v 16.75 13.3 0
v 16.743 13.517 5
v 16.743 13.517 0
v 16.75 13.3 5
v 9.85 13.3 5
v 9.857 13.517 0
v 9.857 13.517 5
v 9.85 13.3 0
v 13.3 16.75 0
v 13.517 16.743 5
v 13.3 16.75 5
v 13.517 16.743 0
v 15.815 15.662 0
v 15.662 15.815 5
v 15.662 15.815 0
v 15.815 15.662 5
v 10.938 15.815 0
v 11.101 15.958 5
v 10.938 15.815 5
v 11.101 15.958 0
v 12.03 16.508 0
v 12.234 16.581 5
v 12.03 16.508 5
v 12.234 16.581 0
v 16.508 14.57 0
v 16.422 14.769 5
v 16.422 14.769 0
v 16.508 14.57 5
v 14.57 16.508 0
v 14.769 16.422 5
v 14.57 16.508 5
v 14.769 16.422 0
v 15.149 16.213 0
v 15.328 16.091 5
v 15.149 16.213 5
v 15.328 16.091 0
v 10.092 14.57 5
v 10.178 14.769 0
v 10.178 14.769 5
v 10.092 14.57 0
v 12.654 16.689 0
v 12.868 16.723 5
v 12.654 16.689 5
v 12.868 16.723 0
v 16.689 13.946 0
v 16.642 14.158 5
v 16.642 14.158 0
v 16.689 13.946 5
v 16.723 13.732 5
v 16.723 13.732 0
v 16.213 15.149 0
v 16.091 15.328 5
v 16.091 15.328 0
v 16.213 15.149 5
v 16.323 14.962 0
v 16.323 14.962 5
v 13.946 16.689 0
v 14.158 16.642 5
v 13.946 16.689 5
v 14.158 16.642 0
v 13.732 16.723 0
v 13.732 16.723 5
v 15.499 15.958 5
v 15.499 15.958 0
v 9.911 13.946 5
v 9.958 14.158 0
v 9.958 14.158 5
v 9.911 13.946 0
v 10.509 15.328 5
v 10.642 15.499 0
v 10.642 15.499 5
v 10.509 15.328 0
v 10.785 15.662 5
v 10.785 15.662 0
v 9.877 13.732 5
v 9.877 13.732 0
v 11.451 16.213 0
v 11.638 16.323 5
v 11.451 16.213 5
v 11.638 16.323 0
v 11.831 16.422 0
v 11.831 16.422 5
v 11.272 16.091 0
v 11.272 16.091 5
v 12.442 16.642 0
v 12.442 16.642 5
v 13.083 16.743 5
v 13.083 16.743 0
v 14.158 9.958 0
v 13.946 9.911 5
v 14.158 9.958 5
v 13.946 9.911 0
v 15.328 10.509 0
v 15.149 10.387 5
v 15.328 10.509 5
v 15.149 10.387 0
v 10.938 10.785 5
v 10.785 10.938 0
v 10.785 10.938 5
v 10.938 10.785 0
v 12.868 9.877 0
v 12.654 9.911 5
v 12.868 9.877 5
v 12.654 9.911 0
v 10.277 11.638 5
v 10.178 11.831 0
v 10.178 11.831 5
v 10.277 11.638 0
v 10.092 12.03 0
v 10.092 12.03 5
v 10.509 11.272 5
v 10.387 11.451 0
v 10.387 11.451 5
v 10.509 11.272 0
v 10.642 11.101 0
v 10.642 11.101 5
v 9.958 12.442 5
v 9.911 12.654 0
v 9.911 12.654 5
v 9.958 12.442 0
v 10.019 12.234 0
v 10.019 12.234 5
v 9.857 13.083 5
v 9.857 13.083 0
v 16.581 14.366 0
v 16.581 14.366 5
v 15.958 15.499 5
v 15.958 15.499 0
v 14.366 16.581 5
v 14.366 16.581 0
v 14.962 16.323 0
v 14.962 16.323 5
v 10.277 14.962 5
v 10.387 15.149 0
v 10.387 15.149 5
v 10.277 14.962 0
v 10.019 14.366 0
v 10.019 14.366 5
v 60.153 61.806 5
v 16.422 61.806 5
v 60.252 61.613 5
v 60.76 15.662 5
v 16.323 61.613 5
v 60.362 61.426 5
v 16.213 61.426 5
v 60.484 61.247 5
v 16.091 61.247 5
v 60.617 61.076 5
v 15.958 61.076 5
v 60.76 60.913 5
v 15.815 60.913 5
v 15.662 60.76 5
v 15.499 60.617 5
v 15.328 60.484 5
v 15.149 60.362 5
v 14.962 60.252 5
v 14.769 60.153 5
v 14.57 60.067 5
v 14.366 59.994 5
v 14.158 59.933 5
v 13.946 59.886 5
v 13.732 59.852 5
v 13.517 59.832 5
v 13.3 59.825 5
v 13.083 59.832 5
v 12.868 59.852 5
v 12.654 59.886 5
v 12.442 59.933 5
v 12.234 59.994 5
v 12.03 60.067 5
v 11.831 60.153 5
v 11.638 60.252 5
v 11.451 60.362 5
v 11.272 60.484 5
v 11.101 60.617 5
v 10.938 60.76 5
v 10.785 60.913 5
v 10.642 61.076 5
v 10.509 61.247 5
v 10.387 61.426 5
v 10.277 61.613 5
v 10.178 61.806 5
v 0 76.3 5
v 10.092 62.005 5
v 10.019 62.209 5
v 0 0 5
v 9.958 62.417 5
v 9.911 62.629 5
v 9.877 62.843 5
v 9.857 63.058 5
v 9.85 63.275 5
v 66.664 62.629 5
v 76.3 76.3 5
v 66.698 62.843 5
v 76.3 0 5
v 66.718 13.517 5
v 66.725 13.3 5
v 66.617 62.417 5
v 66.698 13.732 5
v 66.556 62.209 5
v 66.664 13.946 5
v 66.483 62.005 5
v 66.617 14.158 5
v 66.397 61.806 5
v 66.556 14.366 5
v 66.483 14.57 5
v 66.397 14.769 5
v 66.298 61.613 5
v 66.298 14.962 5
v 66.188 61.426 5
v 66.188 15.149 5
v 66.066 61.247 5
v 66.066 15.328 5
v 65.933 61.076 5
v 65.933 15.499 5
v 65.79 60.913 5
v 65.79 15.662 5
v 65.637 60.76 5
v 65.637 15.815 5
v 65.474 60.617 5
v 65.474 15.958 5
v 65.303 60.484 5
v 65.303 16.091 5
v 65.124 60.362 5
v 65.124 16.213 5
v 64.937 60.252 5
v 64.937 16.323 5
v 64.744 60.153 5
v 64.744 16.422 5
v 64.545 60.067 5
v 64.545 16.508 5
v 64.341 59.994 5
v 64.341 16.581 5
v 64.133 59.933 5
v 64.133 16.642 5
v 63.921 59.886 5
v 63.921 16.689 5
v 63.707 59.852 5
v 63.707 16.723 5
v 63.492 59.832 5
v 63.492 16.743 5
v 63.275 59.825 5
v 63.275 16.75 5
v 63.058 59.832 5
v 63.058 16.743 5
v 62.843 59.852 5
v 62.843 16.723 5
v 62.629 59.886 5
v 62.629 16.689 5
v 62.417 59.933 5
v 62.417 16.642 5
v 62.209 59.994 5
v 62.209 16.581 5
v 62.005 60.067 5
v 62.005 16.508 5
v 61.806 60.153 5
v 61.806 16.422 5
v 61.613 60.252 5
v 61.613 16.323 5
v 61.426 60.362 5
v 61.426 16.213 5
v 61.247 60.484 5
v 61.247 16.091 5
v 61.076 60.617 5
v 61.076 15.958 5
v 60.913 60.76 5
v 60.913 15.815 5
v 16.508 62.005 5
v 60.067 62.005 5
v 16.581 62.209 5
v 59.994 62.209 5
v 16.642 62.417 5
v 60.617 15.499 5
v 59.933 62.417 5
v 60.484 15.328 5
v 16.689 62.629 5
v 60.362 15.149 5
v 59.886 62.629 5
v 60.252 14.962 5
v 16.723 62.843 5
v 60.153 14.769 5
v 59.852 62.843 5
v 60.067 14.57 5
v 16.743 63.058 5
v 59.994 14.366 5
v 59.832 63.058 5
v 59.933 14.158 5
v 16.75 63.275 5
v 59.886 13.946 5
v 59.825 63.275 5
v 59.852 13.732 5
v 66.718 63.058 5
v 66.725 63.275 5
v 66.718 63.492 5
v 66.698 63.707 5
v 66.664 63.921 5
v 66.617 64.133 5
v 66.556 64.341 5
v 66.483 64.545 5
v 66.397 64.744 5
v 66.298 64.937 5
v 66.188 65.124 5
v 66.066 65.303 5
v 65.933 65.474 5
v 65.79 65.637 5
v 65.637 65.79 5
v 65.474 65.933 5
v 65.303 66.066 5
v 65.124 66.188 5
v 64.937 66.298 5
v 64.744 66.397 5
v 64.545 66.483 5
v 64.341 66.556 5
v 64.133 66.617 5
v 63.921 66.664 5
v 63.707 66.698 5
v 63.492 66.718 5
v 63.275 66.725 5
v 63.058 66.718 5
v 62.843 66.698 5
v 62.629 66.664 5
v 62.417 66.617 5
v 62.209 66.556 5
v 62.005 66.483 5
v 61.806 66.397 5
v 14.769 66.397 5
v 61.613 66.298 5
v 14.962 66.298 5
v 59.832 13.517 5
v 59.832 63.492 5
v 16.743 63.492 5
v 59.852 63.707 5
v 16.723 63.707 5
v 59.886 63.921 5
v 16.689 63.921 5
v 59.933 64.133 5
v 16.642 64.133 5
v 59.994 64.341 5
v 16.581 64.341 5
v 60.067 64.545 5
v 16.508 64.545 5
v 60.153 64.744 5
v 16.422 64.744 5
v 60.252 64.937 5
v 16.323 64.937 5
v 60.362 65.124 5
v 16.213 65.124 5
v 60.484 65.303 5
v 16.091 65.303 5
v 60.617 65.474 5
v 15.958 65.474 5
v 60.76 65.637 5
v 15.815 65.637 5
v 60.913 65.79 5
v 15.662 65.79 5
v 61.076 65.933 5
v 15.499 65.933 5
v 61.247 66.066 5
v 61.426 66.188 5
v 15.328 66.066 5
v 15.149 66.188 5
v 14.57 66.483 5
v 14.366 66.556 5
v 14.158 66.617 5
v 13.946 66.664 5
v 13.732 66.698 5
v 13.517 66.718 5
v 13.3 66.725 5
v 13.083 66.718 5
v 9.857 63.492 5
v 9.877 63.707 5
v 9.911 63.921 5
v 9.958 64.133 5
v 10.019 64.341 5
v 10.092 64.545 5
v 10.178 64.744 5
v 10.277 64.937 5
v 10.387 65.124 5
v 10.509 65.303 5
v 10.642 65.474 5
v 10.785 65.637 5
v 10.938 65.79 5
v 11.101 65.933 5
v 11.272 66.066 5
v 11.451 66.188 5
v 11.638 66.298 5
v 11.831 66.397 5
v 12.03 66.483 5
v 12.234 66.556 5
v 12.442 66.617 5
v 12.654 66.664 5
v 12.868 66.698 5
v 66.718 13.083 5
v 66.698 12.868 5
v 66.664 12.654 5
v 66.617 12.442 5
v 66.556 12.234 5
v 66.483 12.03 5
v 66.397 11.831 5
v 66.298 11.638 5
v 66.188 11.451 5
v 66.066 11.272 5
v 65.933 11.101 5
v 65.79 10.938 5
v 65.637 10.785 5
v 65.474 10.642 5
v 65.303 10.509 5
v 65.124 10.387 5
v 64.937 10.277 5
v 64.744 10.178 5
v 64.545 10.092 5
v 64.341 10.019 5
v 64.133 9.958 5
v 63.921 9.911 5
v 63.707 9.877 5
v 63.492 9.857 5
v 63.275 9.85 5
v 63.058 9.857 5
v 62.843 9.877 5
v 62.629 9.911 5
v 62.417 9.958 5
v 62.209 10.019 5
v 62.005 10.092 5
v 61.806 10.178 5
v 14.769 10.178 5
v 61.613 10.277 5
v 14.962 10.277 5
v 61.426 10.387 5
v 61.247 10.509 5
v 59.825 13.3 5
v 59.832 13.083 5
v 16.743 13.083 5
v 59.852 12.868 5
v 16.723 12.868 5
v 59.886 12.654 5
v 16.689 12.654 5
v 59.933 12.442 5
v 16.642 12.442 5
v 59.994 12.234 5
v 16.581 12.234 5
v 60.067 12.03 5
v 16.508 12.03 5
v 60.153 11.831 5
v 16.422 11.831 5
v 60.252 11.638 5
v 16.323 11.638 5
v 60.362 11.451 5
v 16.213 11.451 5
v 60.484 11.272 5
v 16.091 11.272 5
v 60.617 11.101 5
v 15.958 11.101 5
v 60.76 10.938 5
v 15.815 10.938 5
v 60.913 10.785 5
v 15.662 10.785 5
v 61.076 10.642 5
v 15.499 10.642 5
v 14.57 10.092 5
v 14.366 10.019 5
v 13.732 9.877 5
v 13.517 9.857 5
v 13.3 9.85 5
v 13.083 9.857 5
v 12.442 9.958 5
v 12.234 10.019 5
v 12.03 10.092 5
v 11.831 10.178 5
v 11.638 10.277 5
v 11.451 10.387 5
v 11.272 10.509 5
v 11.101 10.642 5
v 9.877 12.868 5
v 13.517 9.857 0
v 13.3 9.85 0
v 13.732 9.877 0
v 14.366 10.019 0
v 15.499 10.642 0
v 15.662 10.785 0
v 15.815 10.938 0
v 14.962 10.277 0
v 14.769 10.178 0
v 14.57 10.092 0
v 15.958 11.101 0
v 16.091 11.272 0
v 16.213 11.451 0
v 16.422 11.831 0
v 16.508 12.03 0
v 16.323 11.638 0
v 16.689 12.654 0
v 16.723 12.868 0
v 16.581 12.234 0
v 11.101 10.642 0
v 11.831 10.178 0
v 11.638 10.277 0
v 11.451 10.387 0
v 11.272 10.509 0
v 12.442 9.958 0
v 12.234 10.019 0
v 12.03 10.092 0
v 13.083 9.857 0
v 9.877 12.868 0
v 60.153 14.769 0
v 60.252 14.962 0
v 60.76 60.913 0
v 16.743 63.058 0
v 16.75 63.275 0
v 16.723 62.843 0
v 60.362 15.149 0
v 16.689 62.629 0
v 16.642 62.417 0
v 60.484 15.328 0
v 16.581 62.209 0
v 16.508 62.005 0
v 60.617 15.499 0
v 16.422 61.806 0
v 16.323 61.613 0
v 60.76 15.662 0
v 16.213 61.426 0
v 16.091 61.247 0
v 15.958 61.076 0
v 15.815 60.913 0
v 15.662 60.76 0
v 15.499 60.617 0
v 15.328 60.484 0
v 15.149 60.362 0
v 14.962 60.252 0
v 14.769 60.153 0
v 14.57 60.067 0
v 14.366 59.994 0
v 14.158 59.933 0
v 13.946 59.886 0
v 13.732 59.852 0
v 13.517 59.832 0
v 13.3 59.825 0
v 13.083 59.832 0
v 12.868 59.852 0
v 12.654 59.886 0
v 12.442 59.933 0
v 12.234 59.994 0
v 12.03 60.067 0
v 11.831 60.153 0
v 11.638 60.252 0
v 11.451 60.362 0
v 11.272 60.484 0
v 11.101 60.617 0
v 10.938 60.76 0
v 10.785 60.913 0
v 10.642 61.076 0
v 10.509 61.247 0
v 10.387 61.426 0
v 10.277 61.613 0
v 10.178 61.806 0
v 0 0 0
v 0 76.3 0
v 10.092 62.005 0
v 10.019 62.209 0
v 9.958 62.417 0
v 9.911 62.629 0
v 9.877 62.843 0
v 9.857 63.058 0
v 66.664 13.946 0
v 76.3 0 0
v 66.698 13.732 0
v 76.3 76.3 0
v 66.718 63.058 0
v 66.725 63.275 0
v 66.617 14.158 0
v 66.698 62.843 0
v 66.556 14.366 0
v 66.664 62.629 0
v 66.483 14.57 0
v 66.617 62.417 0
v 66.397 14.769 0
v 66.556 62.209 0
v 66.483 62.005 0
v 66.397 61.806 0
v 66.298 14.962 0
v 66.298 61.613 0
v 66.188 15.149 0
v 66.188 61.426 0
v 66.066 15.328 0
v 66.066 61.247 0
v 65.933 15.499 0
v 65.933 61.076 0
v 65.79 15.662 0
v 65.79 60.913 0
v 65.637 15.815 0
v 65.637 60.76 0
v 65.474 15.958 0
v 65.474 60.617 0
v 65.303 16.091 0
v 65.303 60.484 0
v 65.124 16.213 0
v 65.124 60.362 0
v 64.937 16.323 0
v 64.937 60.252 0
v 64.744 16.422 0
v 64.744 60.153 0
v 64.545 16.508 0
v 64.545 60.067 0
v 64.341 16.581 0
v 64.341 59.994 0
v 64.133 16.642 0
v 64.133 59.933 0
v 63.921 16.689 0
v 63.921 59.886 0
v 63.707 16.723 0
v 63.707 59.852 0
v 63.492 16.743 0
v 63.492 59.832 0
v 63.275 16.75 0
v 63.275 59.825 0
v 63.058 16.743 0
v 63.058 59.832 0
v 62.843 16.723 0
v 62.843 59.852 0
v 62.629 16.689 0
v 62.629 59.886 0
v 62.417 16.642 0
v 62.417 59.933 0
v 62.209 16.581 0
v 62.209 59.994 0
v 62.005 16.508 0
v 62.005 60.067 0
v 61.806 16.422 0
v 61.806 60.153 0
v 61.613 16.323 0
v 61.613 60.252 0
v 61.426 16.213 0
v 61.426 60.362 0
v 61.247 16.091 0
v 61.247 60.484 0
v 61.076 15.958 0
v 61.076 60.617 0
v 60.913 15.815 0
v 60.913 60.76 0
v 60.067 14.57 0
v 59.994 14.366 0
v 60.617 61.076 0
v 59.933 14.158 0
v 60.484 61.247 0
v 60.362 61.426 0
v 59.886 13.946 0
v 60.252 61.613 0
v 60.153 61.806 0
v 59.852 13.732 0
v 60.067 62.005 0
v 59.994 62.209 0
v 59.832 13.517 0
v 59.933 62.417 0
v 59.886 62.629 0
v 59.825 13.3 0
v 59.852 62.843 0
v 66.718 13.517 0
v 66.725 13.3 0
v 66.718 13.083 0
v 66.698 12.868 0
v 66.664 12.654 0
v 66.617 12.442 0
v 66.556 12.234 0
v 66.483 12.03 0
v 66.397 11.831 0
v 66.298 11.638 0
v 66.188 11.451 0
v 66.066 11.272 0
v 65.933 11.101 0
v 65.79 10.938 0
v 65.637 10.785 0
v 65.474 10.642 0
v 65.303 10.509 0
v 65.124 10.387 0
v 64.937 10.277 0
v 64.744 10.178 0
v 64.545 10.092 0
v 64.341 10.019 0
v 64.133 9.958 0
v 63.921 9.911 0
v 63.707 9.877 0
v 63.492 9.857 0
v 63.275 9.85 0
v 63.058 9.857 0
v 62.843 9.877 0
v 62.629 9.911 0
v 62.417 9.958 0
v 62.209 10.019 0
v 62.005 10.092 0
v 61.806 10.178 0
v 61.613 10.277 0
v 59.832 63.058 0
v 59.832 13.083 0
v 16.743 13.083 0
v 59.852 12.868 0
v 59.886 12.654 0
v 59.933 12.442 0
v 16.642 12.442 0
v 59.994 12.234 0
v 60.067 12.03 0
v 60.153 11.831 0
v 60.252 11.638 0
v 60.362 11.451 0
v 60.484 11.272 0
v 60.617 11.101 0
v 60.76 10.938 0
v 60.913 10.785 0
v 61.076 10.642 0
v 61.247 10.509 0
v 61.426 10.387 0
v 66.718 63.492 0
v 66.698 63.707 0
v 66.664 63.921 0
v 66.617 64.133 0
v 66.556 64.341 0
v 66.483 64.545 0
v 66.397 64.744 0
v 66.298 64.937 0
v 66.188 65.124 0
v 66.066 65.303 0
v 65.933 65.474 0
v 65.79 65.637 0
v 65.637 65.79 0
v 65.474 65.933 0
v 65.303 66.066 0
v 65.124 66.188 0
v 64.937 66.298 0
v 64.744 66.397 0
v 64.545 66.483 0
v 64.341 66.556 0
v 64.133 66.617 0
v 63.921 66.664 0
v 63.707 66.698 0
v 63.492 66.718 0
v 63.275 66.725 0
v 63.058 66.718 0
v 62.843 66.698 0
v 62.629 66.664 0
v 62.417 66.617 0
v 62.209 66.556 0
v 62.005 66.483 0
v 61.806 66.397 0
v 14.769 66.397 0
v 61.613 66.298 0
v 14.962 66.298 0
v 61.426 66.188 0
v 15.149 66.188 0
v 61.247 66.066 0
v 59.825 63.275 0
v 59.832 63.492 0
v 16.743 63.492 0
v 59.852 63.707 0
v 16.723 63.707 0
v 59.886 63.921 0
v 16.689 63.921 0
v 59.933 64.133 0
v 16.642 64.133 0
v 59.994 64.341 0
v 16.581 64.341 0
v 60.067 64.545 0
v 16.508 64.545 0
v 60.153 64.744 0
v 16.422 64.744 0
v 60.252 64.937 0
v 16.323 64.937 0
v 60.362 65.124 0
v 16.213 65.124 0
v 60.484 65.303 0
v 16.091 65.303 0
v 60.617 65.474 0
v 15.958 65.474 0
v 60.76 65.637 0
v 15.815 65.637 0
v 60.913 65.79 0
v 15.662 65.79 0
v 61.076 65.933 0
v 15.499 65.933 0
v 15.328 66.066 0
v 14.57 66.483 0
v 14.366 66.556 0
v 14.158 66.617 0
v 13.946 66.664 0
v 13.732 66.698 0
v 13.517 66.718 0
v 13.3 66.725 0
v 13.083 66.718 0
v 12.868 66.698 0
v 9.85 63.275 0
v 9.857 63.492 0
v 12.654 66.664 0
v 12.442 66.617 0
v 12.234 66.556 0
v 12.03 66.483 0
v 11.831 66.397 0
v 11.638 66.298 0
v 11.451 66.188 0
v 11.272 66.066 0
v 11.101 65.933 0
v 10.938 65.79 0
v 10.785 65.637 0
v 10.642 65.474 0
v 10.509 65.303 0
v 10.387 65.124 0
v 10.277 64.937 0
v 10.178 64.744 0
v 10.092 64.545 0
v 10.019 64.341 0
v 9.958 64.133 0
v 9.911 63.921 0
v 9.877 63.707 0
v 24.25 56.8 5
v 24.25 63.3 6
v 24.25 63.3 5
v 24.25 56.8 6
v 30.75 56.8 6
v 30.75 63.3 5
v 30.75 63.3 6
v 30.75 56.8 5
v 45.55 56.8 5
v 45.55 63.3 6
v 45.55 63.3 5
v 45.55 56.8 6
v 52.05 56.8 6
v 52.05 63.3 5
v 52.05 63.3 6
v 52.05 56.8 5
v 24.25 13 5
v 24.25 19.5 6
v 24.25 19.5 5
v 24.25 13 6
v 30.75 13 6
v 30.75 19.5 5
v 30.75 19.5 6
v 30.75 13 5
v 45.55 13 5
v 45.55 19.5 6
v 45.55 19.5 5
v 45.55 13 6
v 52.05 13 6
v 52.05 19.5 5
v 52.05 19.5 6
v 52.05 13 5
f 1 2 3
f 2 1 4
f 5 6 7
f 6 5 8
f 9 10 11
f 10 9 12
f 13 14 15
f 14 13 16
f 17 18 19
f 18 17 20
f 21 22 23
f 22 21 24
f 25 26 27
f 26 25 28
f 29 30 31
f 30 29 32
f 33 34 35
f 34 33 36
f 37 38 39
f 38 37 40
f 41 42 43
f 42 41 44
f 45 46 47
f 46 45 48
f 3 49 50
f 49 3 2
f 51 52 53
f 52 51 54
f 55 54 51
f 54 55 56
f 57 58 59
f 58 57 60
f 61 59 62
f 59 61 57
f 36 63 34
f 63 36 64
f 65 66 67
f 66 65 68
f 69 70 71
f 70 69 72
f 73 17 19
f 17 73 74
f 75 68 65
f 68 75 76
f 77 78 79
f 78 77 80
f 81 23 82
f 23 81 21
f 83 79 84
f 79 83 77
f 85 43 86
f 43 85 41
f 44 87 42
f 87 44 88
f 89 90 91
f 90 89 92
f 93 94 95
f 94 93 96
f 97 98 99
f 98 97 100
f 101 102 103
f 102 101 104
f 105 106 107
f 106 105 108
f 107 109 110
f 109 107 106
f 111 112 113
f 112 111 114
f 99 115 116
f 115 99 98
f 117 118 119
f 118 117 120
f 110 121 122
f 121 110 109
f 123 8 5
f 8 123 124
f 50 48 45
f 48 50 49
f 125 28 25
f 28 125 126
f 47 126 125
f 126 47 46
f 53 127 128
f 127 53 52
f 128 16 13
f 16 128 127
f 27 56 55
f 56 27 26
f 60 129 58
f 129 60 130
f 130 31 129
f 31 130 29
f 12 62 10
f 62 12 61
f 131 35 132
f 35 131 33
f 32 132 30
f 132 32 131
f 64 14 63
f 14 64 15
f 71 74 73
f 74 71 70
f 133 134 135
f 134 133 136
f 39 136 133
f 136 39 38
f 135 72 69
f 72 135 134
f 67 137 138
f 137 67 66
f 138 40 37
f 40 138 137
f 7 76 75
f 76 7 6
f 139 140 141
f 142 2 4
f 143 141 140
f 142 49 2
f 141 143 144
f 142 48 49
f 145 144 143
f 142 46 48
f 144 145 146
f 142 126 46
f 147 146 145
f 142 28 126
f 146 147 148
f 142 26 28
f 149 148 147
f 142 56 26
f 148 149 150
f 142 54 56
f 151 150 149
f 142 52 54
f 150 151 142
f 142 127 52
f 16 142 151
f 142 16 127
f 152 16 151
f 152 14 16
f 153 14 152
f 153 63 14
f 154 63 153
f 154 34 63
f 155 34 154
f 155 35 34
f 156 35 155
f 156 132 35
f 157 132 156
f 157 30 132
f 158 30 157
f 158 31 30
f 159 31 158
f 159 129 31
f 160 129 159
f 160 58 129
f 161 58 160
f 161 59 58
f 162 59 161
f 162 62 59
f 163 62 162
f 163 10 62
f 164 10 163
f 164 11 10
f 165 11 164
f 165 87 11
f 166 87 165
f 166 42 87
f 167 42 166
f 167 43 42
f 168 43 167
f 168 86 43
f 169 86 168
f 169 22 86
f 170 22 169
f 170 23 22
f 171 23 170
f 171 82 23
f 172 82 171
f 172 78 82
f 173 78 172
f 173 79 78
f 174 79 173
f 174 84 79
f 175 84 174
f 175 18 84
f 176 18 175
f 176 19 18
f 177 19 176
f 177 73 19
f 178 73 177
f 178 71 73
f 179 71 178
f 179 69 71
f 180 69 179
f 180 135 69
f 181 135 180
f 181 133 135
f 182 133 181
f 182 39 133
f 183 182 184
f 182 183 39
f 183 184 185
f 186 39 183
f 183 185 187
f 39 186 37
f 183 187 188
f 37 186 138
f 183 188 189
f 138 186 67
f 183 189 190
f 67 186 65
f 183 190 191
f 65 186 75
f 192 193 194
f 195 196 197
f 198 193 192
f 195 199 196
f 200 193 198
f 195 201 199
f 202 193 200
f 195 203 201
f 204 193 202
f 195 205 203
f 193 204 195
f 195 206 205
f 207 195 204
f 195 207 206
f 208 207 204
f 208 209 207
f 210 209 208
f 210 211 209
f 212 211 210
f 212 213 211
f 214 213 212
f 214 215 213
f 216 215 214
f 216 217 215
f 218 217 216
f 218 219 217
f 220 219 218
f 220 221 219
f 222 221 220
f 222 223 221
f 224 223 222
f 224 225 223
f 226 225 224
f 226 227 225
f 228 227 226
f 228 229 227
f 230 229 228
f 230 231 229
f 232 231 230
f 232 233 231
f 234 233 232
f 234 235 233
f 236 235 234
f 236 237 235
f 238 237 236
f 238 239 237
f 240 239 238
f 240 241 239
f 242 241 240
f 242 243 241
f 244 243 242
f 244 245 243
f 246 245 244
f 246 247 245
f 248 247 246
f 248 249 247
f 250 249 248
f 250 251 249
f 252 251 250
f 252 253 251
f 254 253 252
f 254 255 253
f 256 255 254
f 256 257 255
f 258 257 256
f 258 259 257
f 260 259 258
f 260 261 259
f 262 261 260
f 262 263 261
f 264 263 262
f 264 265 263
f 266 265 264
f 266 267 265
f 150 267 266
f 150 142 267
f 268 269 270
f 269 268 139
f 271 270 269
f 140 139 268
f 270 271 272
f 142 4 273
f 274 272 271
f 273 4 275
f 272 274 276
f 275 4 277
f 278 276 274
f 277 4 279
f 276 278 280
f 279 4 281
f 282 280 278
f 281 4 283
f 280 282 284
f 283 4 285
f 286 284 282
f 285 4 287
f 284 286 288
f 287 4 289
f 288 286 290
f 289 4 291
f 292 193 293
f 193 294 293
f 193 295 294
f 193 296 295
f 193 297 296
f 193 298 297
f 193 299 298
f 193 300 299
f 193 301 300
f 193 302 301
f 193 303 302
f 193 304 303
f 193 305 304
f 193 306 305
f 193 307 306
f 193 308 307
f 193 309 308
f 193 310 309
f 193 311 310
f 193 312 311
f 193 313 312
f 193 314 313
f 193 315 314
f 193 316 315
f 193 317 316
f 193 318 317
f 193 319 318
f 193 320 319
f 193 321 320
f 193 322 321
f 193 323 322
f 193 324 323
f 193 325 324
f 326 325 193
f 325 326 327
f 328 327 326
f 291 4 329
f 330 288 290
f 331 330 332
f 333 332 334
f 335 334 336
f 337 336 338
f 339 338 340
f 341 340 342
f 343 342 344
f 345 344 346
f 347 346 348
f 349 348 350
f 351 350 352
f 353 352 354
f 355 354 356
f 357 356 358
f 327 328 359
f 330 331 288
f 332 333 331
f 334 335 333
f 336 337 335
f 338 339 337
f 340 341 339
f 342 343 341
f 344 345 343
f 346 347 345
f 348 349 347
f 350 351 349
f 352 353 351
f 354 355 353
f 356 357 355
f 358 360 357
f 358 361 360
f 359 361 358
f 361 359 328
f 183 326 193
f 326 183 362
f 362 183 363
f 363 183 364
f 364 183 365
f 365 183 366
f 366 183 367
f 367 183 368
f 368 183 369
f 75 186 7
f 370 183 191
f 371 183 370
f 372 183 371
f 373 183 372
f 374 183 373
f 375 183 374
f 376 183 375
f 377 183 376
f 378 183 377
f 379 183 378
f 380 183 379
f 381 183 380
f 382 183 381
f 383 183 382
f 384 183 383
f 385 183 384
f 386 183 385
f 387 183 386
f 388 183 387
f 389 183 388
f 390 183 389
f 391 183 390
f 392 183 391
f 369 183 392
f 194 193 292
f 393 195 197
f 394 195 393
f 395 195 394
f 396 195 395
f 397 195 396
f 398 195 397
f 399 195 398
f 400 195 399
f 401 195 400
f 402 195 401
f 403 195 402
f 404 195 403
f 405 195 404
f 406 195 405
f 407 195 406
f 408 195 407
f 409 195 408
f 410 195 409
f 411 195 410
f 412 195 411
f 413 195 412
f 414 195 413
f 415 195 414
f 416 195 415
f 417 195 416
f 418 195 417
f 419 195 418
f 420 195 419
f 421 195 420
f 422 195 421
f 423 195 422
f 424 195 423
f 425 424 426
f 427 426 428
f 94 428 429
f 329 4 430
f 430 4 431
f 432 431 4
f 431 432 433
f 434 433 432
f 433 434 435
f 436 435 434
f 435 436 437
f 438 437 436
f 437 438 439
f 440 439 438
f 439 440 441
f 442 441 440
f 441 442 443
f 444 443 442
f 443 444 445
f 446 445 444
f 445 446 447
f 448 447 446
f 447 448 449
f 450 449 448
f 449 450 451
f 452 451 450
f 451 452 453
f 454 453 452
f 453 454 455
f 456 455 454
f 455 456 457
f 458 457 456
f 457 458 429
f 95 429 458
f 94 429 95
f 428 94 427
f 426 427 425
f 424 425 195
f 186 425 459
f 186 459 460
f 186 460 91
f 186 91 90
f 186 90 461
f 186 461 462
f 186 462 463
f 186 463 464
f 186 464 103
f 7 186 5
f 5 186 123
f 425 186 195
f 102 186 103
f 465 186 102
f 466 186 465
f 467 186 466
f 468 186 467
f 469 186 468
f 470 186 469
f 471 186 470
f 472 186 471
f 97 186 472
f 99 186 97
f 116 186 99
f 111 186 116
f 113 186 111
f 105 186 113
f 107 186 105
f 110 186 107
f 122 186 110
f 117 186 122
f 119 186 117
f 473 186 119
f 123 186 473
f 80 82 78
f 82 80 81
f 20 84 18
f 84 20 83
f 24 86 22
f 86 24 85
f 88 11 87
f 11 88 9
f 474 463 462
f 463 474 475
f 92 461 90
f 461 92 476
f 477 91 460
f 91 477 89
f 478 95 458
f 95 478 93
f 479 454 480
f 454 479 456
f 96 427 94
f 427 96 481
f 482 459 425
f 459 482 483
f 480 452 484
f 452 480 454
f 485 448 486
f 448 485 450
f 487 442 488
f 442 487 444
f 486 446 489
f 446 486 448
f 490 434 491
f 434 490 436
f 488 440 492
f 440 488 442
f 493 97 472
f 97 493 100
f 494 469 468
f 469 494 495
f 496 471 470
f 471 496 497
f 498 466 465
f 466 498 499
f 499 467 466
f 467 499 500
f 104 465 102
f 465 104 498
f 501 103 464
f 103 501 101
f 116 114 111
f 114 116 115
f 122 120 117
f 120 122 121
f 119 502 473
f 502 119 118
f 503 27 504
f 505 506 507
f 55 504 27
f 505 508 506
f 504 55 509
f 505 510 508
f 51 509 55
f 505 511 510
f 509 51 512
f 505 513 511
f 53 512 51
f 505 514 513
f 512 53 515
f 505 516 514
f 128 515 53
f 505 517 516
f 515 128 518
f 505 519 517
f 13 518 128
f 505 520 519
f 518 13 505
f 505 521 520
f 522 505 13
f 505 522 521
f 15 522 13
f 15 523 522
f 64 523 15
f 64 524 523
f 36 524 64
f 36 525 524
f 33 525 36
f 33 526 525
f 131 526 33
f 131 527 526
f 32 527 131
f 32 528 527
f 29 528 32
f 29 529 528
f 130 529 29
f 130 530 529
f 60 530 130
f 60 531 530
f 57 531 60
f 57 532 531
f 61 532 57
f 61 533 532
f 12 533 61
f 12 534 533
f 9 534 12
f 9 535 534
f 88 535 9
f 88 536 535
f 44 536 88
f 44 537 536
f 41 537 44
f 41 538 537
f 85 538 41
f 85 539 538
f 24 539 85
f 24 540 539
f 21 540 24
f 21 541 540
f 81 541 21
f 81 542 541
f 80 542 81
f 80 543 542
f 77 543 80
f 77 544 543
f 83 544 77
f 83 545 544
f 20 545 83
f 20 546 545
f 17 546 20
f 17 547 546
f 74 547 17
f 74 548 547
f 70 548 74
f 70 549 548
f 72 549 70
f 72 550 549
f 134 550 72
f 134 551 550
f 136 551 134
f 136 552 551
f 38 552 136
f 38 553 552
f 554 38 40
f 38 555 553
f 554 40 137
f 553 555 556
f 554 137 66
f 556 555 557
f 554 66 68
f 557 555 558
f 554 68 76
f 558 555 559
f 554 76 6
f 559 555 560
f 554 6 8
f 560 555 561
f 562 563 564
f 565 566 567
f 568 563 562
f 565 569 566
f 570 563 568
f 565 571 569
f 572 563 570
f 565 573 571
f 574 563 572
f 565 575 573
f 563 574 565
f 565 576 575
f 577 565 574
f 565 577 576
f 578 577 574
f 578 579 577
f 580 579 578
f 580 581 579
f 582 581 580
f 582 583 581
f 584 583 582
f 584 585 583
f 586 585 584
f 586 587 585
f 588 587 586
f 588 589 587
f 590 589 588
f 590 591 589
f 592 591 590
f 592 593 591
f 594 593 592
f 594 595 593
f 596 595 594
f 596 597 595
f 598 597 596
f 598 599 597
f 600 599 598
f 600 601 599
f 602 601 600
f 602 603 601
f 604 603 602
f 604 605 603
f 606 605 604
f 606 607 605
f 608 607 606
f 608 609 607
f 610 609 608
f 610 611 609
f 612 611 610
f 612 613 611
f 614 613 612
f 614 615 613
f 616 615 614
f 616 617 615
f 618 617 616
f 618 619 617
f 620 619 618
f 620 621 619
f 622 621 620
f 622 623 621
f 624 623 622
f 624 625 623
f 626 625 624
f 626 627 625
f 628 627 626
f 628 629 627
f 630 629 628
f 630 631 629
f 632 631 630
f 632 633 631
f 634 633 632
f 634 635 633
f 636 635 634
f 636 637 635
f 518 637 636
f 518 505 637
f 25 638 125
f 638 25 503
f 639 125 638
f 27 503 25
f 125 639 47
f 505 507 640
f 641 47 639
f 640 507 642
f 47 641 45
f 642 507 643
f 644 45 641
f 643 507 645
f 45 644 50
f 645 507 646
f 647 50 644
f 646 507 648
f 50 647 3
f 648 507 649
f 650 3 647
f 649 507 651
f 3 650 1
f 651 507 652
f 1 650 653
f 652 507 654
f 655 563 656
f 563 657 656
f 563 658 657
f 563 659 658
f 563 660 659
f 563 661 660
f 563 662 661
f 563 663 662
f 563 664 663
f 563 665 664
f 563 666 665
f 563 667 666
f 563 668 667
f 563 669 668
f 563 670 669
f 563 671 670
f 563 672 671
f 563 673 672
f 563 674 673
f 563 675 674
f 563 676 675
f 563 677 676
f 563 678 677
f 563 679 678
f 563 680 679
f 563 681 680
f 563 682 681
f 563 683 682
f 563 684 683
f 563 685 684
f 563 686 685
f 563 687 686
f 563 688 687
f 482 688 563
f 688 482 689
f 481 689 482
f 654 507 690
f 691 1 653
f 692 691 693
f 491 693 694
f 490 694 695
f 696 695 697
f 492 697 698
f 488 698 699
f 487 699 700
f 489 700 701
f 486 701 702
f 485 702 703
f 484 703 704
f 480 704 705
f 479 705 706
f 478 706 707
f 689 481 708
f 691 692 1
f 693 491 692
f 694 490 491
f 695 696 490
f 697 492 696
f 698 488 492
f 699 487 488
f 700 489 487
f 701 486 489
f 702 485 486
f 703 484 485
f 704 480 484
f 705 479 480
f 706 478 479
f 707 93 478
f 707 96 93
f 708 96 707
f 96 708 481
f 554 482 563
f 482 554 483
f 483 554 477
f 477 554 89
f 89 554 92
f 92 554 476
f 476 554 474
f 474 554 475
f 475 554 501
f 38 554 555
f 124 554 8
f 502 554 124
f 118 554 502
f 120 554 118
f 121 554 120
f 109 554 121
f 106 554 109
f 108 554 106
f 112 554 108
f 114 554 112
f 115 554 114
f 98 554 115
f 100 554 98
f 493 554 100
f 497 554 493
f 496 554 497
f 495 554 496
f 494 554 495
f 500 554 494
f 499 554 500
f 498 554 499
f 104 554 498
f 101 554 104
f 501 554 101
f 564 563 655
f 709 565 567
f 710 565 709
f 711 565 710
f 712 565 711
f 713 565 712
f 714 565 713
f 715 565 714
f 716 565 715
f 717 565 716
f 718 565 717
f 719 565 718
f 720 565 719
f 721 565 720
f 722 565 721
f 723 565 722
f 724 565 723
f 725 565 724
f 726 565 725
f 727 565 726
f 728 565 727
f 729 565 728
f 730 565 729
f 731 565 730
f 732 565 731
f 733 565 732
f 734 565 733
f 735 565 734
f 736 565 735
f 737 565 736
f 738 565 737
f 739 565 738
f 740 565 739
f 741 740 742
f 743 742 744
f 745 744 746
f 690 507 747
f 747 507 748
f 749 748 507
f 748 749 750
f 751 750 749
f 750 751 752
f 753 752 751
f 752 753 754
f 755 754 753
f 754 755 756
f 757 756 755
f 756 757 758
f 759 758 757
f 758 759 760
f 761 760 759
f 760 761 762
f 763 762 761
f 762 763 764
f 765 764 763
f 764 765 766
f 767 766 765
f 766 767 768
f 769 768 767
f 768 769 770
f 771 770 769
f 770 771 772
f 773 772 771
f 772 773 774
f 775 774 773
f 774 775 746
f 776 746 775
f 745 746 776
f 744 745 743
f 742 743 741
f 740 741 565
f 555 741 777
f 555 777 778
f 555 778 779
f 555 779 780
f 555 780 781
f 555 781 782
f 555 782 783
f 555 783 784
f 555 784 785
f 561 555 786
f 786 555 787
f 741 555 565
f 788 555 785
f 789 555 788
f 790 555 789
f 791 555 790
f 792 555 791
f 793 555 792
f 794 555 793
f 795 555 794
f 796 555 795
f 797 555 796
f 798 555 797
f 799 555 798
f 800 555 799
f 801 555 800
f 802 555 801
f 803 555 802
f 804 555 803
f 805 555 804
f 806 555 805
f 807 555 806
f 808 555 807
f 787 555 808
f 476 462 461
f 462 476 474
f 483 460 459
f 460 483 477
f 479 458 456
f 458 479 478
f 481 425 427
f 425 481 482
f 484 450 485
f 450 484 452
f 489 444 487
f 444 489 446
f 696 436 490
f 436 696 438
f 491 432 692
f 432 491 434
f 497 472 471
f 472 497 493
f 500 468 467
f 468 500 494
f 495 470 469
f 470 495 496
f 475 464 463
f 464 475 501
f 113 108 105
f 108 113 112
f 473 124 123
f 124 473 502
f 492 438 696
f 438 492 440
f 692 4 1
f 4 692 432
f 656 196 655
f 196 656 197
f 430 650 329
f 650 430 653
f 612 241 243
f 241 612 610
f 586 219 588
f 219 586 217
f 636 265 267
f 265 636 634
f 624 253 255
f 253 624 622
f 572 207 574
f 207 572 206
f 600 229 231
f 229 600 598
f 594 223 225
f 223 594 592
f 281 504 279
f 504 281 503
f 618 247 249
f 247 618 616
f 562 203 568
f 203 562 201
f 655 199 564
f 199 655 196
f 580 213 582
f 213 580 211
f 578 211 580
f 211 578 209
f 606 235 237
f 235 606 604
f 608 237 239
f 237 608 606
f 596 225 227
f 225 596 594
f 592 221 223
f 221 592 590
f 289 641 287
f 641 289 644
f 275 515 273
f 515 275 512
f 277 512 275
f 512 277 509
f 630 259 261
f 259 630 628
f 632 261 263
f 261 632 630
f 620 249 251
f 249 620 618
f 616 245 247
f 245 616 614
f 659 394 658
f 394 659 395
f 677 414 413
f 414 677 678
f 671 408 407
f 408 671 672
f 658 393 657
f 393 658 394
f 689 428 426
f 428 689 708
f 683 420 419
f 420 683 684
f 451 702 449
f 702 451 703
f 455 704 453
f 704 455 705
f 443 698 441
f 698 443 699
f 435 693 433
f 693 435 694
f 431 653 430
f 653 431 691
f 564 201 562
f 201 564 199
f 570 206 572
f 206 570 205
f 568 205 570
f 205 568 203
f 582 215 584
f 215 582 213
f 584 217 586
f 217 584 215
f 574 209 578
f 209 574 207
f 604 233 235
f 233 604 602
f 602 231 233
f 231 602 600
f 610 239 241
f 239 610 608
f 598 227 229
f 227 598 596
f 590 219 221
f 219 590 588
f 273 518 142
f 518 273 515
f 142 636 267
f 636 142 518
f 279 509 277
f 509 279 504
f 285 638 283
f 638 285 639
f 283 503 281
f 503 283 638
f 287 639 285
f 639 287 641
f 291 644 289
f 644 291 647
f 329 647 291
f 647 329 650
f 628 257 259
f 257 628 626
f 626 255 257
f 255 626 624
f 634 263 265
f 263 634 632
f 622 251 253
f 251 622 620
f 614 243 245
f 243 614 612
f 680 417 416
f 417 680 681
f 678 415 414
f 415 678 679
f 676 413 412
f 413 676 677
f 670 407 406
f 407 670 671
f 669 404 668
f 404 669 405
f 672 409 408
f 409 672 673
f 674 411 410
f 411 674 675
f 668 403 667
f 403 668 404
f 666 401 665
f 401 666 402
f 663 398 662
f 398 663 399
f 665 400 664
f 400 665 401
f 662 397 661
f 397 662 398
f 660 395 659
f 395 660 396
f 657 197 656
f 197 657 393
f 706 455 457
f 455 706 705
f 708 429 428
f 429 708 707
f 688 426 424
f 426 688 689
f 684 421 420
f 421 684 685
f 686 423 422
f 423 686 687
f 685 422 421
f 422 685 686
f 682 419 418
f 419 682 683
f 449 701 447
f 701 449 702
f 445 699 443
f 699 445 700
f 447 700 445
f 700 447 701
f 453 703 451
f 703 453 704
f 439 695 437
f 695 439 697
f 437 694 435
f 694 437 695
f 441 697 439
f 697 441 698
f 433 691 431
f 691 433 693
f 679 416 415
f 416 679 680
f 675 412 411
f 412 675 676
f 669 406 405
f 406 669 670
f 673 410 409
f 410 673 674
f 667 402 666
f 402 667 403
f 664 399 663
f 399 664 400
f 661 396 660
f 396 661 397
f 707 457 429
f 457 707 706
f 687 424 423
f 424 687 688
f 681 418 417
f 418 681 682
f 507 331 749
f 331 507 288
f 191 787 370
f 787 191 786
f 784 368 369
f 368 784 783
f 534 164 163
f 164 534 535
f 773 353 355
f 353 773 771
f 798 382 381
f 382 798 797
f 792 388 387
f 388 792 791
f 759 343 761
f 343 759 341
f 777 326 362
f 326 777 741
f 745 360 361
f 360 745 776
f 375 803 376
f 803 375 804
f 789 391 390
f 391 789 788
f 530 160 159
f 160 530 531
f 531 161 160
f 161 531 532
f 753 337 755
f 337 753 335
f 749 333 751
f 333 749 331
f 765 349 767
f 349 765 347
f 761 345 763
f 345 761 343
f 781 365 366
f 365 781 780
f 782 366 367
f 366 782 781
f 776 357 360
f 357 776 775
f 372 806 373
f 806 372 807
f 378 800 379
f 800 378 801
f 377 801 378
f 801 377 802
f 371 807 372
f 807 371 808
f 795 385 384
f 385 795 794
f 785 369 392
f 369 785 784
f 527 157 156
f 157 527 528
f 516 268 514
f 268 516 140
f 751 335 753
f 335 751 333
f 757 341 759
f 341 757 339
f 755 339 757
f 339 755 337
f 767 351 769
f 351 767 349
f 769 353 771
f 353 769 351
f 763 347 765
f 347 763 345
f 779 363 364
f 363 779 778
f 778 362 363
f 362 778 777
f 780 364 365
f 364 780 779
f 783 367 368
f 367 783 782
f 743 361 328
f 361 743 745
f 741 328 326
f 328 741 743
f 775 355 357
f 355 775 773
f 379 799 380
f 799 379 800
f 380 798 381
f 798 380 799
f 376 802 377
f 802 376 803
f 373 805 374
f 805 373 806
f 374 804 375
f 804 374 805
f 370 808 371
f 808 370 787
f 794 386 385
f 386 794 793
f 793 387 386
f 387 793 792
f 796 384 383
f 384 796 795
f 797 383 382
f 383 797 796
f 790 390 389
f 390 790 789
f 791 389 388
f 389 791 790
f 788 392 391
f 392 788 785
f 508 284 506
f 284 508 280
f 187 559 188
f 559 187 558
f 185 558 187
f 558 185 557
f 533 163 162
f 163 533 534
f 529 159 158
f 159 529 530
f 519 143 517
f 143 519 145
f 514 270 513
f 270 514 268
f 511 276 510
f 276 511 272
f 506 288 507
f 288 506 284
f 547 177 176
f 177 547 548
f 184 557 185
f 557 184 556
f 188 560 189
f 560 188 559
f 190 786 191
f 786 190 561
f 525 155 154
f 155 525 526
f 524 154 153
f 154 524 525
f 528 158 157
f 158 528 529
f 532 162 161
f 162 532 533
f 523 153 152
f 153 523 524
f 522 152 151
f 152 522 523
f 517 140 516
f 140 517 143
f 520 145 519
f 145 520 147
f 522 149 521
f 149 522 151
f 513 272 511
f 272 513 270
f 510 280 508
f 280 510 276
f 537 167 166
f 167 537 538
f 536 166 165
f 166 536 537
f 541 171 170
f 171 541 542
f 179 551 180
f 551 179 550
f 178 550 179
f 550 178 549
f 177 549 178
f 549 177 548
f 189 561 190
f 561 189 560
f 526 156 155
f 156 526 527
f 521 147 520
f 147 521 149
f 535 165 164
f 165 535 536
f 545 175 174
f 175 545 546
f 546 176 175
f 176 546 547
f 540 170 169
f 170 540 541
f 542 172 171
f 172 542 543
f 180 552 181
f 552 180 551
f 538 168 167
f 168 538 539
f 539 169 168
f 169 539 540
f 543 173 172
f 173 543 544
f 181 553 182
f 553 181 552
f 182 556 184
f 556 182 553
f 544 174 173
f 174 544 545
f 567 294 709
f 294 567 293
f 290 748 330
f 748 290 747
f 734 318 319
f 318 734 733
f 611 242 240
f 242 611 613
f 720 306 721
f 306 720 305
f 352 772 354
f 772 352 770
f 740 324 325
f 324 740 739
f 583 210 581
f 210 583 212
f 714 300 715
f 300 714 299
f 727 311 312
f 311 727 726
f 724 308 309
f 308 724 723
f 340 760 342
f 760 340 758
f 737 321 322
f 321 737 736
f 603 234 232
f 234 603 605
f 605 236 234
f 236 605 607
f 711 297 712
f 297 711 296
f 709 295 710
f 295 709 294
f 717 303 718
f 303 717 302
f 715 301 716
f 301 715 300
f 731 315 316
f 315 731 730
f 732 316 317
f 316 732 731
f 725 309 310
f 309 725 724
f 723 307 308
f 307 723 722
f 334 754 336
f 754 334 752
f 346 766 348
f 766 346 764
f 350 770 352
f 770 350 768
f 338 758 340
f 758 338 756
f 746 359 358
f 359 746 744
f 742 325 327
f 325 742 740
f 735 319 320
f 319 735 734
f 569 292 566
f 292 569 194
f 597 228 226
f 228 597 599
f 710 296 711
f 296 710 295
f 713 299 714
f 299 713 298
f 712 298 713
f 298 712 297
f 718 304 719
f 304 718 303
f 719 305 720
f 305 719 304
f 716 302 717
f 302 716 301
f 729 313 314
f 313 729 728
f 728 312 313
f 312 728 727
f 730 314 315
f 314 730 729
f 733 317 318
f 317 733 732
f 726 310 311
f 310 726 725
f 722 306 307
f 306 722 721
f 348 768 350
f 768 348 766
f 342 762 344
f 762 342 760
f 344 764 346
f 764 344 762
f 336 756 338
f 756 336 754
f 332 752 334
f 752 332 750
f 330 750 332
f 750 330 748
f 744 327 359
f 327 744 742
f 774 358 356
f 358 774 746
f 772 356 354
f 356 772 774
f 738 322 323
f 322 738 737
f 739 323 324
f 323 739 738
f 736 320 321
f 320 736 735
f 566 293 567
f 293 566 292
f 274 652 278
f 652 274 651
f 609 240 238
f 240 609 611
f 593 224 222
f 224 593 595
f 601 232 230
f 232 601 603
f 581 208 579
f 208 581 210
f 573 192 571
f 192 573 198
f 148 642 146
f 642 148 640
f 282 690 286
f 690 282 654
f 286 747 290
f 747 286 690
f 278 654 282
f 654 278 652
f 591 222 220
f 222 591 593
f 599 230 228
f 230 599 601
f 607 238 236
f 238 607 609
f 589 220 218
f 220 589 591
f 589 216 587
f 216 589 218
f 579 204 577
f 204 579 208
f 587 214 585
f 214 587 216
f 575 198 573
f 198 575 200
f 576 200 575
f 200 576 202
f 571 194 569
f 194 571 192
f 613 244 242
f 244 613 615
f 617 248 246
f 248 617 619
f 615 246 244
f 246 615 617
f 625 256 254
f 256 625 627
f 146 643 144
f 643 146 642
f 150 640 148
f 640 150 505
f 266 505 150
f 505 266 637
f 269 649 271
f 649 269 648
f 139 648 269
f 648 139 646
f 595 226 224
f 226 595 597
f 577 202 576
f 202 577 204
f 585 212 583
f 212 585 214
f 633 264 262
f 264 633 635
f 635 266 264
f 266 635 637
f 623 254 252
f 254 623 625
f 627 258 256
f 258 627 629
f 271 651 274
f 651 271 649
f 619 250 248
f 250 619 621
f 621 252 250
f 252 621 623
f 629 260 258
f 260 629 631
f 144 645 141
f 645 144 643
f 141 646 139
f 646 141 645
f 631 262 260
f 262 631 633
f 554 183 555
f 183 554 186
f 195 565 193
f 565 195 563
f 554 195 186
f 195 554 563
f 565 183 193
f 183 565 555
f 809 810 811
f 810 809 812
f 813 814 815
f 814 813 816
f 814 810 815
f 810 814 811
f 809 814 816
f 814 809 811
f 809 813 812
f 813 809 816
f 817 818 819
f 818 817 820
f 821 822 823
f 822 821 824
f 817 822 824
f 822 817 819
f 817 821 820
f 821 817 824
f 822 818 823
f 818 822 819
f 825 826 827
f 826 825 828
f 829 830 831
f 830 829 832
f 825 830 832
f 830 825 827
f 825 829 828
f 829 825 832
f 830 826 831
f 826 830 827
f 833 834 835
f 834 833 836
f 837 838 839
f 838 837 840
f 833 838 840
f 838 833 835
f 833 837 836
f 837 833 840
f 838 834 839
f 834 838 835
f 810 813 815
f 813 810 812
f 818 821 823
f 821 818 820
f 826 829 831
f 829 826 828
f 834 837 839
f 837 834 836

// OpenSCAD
// file: module_Cubo.scad
module Cubo(){
    difference(){
        cube([50,50,50]);
        #translate([2.5,2.5,2.5])cube(45);
        #translate([25,25,0])cylinder(h=2.5,r1=15,r2=15);
        #translate([25,25,47.5])cylinder(h=2.5,r1=15,r2=15);
        rotate([90,0,0])translate([25,25,-2.5])cylinder(h=2.5,r1=15,r2=15);
        rotate([90,0,0])translate([25,25,-50])cylinder(h=2.5,r1=15,r2=15);
        rotate([0,90,0])translate([-25,25,])cylinder(h=2.5,r1=15,r2=15);
        rotate([0,90,0])translate([-25,25,47.5])cylinder(h=2.5,r1=15,r2=15);
    }
}
// main file
// ----- ----- Declaração de Variáveis ----- ----- //

res=100;

folga1=0.15;
folga2=0.05;

cubo=50;

ds_splh=(44+40)/2;
d_splh=ds_splh/12; //3.5

diff_splh_x=17;
diff_splh_y=10;
diff_splh_z=19.25;

raio_bobina=12.5;

xeuss_x=76.3;
xeuss_y=76.3;
xeuss_z=5;

xt=14;
yt=89.8-xeuss_y;
zt=xeuss_z;

rx=6.6/2;
tr_x=13.65;
tr_cil=10+rx;
cc = (56.5+43.45)/2;

Xdelize=xeuss_x;
Ydelize=25;
Zdelize=11.7-xeuss_z;

alt_poly=15-Zdelize-xeuss_z;
esp_poly=2.5;
apt_poly=7.4;
poly5=5;

x_encaixe=xeuss_x-2*poly5;
y_encaixe=20;
z_encaixe=3;

splh_x=20;
splh_y=10;
splh_z=60.35-z_encaixe;
r_splh=1;

alt_bob=11;

esp_pottop=3;
long_pottop=6.5;
alt_quad=5;
trans_aux2=-diff_splh_z/2-cubo/2+xeuss_z+Zdelize+splh_z-splh_x/2+diff_splh_x/2+z_encaixe-folga1-esp_pottop-alt_bob-alt_quad;
desce_enough=trans_aux2-xeuss_z-folga2;
gordura=1;

// ----- ----- Declaração de Bibliotecas ----- ----- //
use <funcoes_GFCx.scad>
use <module_Cubo.scad>
use <module_MontagemDoCubo.scad>

//não apague, mas também não descomente
//translate([tr_x,xeuss_y,0])cube([xt,yt,zt]); 

// ----- ----- Declaração de Funções ----- ----- //
module pottop(param,param2,folga,alt){
    translate([-param-folga,-param-folga,-param-folga]){
        cube([param+param2,param,param+param2]);
        cube([param,param+param2,param+param2]);
        translate([0,0,-alt])cube([param+param2,param+param2,param+alt]);
    }
}


// ----- ----- Base Atuador Manual Linear ----- ----- //
difference(){
    translate([0,0,0])cube([xeuss_x,xeuss_y,xeuss_z]);
    translate([tr_cil,tr_cil,0]){
        #translate([0,0,0])cylinder(xeuss_z,rx+folga1,rx+folga1,$fn=res);
        #translate([cc,0,0])cylinder(xeuss_z,rx+folga1,rx+folga1,$fn=res);
        #translate([0,cc,0])cylinder(xeuss_z,rx+folga1,rx+folga1,$fn=res);
        #translate([cc,cc,0])cylinder(xeuss_z,rx+folga1,rx+folga1,$fn=res);
    }
}

/*
// ----- ----- Suporte de Amostras ----- ----- //
translate([0,xeuss_y/2-Ydelize/2,xeuss_z])cube([Xdelize,Ydelize,Zdelize]);
translate([0,xeuss_y/2-Ydelize/2,xeuss_z+Zdelize]){
    linear_extrude(alt_poly)polygon([[0,0],[xeuss_x,0],[xeuss_x,apt_poly],[xeuss_x-poly5,esp_poly-folga1],[poly5,esp_poly-folga1]]);
    translate([0,Ydelize,0])linear_extrude(alt_poly)polygon([[0,0],[xeuss_x,0],[xeuss_x,-apt_poly],[xeuss_x-poly5,-esp_poly+folga1],[poly5,-esp_poly+folga1]]);
}*/

/*
translate([poly5,xeuss_y/2-Ydelize/2+esp_poly,xeuss_z+Zdelize]){
    cube([x_encaixe,y_encaixe,z_encaixe]);
    difference(){
        translate([x_encaixe/2-splh_x/2,y_encaixe/2-splh_y/2,z_encaixe])cube([splh_x,splh_y,splh_z]);
        #translate([x_encaixe/2-splh_x/2+splh_x/2-diff_splh_x/2,y_encaixe/2-splh_y/2,splh_z-(splh_x/2-diff_splh_x/2)-diff_splh_z+z_encaixe])
        #cube([diff_splh_x,diff_splh_y,diff_splh_z]);
        #translate([0,0,-10])
        #translate([x_encaixe/2-splh_x/2+splh_x/2-(4*d_splh)/2,y_encaixe/2,splh_z-(splh_x/2-diff_splh_x/2)-diff_splh_z+z_encaixe])
        #funcao_2d_array_cilindros(r_splh,d_splh,10+splh_x/2-diff_splh_x/2+diff_splh_z,5,1,1,res,"Conjunto Sample Holder");
        #translate([0,0,-10])
        #translate([x_encaixe/2-splh_x/2+splh_x/2-(d_splh*4)/2,y_encaixe/2,splh_z-(splh_x/2-diff_splh_x/2)-diff_splh_z+z_encaixe])
        #3d_array_sp_cb(1,1,1,1,d_splh,30,5,1,1,1,"sphere",res,"Conjunto Sample Holder Esferas");
    }
}*/


difference(){
    translate([xeuss_x/2-cubo/2,xeuss_x/2-cubo/2,0])
    translate([0,0,splh_z-(splh_x/2-diff_splh_x/2)-diff_splh_z+z_encaixe])
    translate([0,0,xeuss_z+Zdelize])
    translate([0,0,diff_splh_z/2-cubo/2]){
        //MontagemDoCubo();
        //Cubo();
        
        //pottop(esp_pottop,long_pottop,folga1,alt_bob);
        //translate([50,0,0])rotate([0,0,90])pottop(esp_pottop,long_pottop,folga1,alt_bob);
        //translate([50,50,0])rotate([0,0,2*90])pottop(esp_pottop,long_pottop,folga1,alt_bob);
        //translate([0,50,0])rotate([0,0,3*90])pottop(esp_pottop,long_pottop,folga1,alt_bob);

        //translate([-folga1-esp_pottop,-folga1-esp_pottop,-folga1-esp_pottop-alt_bob-alt_quad])
        //cube([cubo+2*esp_pottop+2*folga1,cubo+2*esp_pottop+2*folga1,alt_quad]);
        
        translate([0,0,-desce_enough-folga2]){
            translate([(long_pottop+esp_pottop)*1.5,esp_pottop,0])
            translate([-folga1-esp_pottop,-folga1-esp_pottop,-folga1-esp_pottop-alt_bob-alt_quad])
            cube([long_pottop,long_pottop,desce_enough]);
            translate([-(long_pottop+esp_pottop)*1.5,esp_pottop,0])
            translate([cubo+2*esp_pottop+2*folga1-long_pottop,0,0])
            translate([-folga1-esp_pottop,-folga1-esp_pottop,-folga1-esp_pottop-alt_bob-alt_quad])
            cube([long_pottop,long_pottop,desce_enough]);
            translate([0,cubo+2*esp_pottop+2*folga1-long_pottop-esp_pottop,0]){
                translate([(long_pottop+esp_pottop)*1.5,0,0])
                translate([-folga1-esp_pottop,-folga1-esp_pottop,-folga1-esp_pottop-alt_bob-alt_quad])
                cube([long_pottop,long_pottop,desce_enough]);
                translate([-(long_pottop+esp_pottop)*1.5,0,0])
                translate([cubo+2*esp_pottop+2*folga1-long_pottop,0,0])
                translate([-folga1-esp_pottop,-folga1-esp_pottop,-folga1-esp_pottop-alt_bob-alt_quad])
                cube([long_pottop,long_pottop,desce_enough]);
            }
        }
    }
    #translate([poly5,xeuss_y/2-Ydelize/2+esp_poly,xeuss_z+Zdelize])
    #translate([x_encaixe/2-(splh_x*1.2)/2,y_encaixe/2-(splh_y*1.2)/2,z_encaixe])
    #cube([splh_x*1.2,splh_y*1.2,splh_z*0.2]);
    
    #translate([0,0,gordura])
    #translate([xeuss_x/2-cubo/2,xeuss_x/2-cubo/2,0])
    #translate([0,0,splh_z-(splh_x/2-diff_splh_x/2)-diff_splh_z+z_encaixe])
    #translate([0,0,xeuss_z+Zdelize])
    #translate([0,0,diff_splh_z/2-cubo/2])
    translate([0,0,-desce_enough-folga2]){
        translate([(long_pottop+esp_pottop)*1.5,esp_pottop,0])
        translate([-folga1-esp_pottop,-folga1-esp_pottop,-folga1-esp_pottop-alt_bob-alt_quad])
        cube([long_pottop,long_pottop,desce_enough]);
        translate([-(long_pottop+esp_pottop)*1.5,esp_pottop,0])
        translate([cubo+2*esp_pottop+2*folga1-long_pottop,0,0])
        translate([-folga1-esp_pottop,-folga1-esp_pottop,-folga1-esp_pottop-alt_bob-alt_quad])
        cube([long_pottop,long_pottop,desce_enough]);
        translate([0,cubo+2*esp_pottop+2*folga1-long_pottop-esp_pottop,0]){
            translate([(long_pottop+esp_pottop)*1.5,0,0])
            translate([-folga1-esp_pottop,-folga1-esp_pottop,-folga1-esp_pottop-alt_bob-alt_quad])
            cube([long_pottop,long_pottop,desce_enough]);
            translate([-(long_pottop+esp_pottop)*1.5,0,0])
            translate([cubo+2*esp_pottop+2*folga1-long_pottop,0,0])
            translate([-folga1-esp_pottop,-folga1-esp_pottop,-folga1-esp_pottop-alt_bob-alt_quad])
            cube([long_pottop,long_pottop,desce_enough]);
        }
    }
}

/*
difference(){
    translate([0,0,folga2])
    translate([xeuss_x/2-cubo/2,xeuss_x/2-cubo/2,0])
    translate([0,0,splh_z-(splh_x/2-diff_splh_x/2)-diff_splh_z+z_encaixe])
    translate([0,0,xeuss_z+Zdelize])
    translate([0,0,diff_splh_z/2-cubo/2])
    translate([0,0,-desce_enough-folga2]){
        translate([-gordura,-gordura,0])
        translate([(long_pottop+esp_pottop)*1.5,esp_pottop,0])
        translate([-folga1-esp_pottop,-folga1-esp_pottop,-folga1-esp_pottop-alt_bob-alt_quad])
        cube([long_pottop+2*gordura,long_pottop+2*gordura,desce_enough-folga2]);
        translate([-gordura,-gordura,0])
        translate([-(long_pottop+esp_pottop)*1.5,esp_pottop,0])
        translate([cubo+2*esp_pottop+2*folga1-long_pottop,0,0])
        translate([-folga1-esp_pottop,-folga1-esp_pottop,-folga1-esp_pottop-alt_bob-alt_quad])
        cube([long_pottop+2*gordura,long_pottop+2*gordura,desce_enough-folga2]);
        translate([0,cubo+2*esp_pottop+2*folga1-long_pottop-esp_pottop,0]){
            translate([-gordura,-gordura,0])
            translate([(long_pottop+esp_pottop)*1.5,0,0])
            translate([-folga1-esp_pottop,-folga1-esp_pottop,-folga1-esp_pottop-alt_bob-alt_quad])
            cube([long_pottop+2*gordura,long_pottop+2*gordura,desce_enough-folga2]);
            translate([-gordura,-gordura,0])
            translate([-(long_pottop+esp_pottop)*1.5,0,0])
            translate([cubo+2*esp_pottop+2*folga1-long_pottop,0,0])
            translate([-folga1-esp_pottop,-folga1-esp_pottop,-folga1-esp_pottop-alt_bob-alt_quad])
            cube([long_pottop+2*gordura,long_pottop+2*gordura,desce_enough-folga2]);
        }
    }
    #translate([0,0,-folga2])
    #translate([xeuss_x/2-cubo/2,xeuss_x/2-cubo/2,0])
    #translate([0,0,splh_z-(splh_x/2-diff_splh_x/2)-diff_splh_z+z_encaixe])
    #translate([0,0,xeuss_z+Zdelize])
    #translate([0,0,diff_splh_z/2-cubo/2])
    #translate([0,0,-desce_enough-folga2]){
        #translate([-folga1,-folga1,0])
        #translate([(long_pottop+esp_pottop)*1.5,esp_pottop,0])
        #translate([-folga1-esp_pottop,-folga1-esp_pottop,-folga1-esp_pottop-alt_bob-alt_quad])
        #cube([long_pottop+2*folga1,long_pottop+2*folga1,gordura]);
        #translate([-folga1,-folga1,0])
        #translate([-(long_pottop+esp_pottop)*1.5,esp_pottop,0])
        #translate([cubo+2*esp_pottop+2*folga1-long_pottop,0,0])
        #translate([-folga1-esp_pottop,-folga1-esp_pottop,-folga1-esp_pottop-alt_bob-alt_quad])
        #cube([long_pottop+2*folga1,long_pottop+2*folga1,gordura]);
        #translate([0,cubo+2*esp_pottop+2*folga1-long_pottop-esp_pottop,0]){
            #translate([-folga1,-folga1,0])
            #translate([(long_pottop+esp_pottop)*1.5,0,0])
            #translate([-folga1-esp_pottop,-folga1-esp_pottop,-folga1-esp_pottop-alt_bob-alt_quad])
            #cube([long_pottop+2*folga1,long_pottop+2*folga1,gordura]);
            #translate([-folga1,-folga1,0])
            #translate([-(long_pottop+esp_pottop)*1.5,0,0])
            #translate([cubo+2*esp_pottop+2*folga1-long_pottop,0,0])
            #translate([-folga1-esp_pottop,-folga1-esp_pottop,-folga1-esp_pottop-alt_bob-alt_quad])
            #cube([long_pottop+2*folga1,long_pottop+2*folga1,gordura]);
        }
    }
}


translate([0,0,gordura+folga2])
translate([xeuss_x/2-cubo/2,xeuss_x/2-cubo/2,0])
translate([0,0,splh_z-(splh_x/2-diff_splh_x/2)-diff_splh_z+z_encaixe])
translate([0,0,xeuss_z+Zdelize])
translate([0,0,diff_splh_z/2-cubo/2])
translate([0,0,-desce_enough-folga2]){
    translate([folga1,folga1,0])
    translate([(long_pottop+esp_pottop)*1.5,esp_pottop,0])
    translate([-folga1-esp_pottop,-folga1-esp_pottop,-folga1-esp_pottop-alt_bob-alt_quad])
    cube([long_pottop-2*folga1,long_pottop-2*folga1,desce_enough-2*folga2]);
    translate([folga1,folga1,0])
    translate([-(long_pottop+esp_pottop)*1.5,esp_pottop,0])
    translate([cubo+2*esp_pottop+2*folga1-long_pottop,0,0])
    translate([-folga1-esp_pottop,-folga1-esp_pottop,-folga1-esp_pottop-alt_bob-alt_quad])
    cube([long_pottop-2*folga1,long_pottop-2*folga1,desce_enough-2*folga2]);
    translate([0,cubo+2*esp_pottop+2*folga1-long_pottop-esp_pottop,0]){
        translate([folga1,folga1,0])
        translate([(long_pottop+esp_pottop)*1.5,0,0])
        translate([-folga1-esp_pottop,-folga1-esp_pottop,-folga1-esp_pottop-alt_bob-alt_quad])
        cube([long_pottop-2*folga1,long_pottop-2*folga1,desce_enough-2*folga2]);
        translate([folga1,folga1,0])
        translate([-(long_pottop+esp_pottop)*1.5,0,0])
        translate([cubo+2*esp_pottop+2*folga1-long_pottop,0,0])
        translate([-folga1-esp_pottop,-folga1-esp_pottop,-folga1-esp_pottop-alt_bob-alt_quad])
        cube([long_pottop-2*folga1,long_pottop-2*folga1,desce_enough-2*folga2]);
    }
}*/
